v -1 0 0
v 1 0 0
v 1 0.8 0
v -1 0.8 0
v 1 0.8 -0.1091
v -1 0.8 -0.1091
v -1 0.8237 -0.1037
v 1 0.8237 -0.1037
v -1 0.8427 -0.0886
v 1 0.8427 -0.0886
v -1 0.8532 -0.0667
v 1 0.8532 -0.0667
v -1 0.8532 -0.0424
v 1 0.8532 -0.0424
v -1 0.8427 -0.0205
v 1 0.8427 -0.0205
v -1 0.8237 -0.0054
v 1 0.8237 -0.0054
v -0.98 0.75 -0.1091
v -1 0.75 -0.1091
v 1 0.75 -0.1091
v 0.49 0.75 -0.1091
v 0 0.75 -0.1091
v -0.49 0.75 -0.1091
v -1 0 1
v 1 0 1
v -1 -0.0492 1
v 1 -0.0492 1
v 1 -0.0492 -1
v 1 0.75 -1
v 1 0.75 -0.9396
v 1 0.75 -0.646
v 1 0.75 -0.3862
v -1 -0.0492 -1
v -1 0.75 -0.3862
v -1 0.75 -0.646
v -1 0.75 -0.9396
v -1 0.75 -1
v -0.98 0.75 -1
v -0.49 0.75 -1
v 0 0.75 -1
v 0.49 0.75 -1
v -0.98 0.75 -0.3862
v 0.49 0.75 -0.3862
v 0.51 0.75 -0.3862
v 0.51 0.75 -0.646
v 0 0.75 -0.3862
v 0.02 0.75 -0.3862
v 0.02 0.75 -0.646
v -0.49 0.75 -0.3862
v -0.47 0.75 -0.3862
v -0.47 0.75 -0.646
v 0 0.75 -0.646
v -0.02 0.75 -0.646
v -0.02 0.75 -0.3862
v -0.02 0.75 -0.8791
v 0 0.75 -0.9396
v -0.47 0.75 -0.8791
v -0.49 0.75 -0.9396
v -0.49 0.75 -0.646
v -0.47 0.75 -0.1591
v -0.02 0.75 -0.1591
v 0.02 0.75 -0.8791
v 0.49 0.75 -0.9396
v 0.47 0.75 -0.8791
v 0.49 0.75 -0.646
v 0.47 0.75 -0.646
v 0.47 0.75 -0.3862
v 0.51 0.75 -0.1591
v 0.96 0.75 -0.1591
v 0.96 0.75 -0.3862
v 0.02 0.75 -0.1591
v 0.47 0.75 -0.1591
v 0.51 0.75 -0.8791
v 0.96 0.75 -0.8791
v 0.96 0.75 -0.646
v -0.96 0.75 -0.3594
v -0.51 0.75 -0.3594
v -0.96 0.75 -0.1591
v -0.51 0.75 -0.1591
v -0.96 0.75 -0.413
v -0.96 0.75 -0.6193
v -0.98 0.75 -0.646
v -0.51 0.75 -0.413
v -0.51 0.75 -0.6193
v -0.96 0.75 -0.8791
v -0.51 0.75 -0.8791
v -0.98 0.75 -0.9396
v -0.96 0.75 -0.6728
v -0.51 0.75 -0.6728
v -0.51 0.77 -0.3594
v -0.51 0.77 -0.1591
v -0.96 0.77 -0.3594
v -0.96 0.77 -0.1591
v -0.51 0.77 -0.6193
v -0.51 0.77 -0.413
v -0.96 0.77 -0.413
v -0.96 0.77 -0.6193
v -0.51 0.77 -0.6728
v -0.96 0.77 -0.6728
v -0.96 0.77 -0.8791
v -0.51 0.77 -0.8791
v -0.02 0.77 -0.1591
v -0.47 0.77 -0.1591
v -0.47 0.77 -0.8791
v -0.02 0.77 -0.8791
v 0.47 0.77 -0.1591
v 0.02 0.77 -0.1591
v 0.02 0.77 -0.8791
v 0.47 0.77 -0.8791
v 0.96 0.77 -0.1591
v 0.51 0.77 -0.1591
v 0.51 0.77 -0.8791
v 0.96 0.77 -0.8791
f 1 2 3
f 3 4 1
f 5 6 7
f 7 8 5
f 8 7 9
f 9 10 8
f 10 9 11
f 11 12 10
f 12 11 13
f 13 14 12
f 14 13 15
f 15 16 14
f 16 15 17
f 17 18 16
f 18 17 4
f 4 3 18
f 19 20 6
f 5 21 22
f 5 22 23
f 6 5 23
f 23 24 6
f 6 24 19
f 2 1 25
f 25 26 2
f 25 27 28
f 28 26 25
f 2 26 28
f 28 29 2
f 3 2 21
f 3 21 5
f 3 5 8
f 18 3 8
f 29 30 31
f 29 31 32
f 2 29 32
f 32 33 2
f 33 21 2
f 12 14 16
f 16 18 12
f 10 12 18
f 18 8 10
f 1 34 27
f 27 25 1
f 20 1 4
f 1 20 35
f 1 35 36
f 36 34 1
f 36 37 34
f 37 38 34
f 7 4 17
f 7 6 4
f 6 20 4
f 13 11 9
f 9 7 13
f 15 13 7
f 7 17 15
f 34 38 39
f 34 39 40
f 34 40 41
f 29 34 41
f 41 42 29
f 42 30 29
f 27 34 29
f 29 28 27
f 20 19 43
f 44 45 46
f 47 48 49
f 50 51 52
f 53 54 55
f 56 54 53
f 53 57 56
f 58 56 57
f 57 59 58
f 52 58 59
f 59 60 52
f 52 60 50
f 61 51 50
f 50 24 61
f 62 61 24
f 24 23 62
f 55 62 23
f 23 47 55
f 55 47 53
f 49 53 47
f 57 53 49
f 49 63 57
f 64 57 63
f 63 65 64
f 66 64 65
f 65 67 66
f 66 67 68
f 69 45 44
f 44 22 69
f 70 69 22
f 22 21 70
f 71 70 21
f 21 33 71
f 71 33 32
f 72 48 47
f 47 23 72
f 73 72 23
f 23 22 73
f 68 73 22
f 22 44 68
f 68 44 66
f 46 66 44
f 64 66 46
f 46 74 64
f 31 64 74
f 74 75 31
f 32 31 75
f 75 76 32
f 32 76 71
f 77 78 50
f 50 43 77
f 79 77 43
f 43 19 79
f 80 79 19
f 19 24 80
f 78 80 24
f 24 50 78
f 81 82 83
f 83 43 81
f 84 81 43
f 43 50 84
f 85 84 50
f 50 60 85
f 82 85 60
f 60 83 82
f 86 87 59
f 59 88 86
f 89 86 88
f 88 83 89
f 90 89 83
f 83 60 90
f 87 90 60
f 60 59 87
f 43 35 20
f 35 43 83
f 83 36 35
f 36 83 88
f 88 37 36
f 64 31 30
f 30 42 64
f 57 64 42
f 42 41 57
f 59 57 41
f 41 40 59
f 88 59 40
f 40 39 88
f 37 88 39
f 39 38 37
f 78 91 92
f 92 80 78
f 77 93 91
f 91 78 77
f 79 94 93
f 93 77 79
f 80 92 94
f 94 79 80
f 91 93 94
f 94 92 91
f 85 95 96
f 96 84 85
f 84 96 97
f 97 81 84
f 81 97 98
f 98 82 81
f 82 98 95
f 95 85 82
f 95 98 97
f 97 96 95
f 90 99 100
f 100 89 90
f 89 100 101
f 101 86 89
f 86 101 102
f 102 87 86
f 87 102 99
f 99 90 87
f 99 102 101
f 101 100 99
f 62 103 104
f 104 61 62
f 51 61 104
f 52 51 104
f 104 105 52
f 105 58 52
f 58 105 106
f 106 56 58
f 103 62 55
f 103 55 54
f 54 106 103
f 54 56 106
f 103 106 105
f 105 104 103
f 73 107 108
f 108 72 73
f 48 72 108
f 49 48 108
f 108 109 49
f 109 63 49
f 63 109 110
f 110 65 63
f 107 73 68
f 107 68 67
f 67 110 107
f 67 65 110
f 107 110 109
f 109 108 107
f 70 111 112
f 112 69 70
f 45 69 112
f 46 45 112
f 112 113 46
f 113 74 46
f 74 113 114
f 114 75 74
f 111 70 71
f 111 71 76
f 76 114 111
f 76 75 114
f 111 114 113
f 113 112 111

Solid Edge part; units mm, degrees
sketch "Sketch1" plane through (0, 0, 0) normal (1, 0, 0) x (0, 1, 0)
  line L0 (0, 0) -> (0.8, 0)
  arc A0 (0.8, 0) -> (0.8, -0.1091) centre (0.8, -0.0546) cw
  line L1 (0.8, -0.1091) -> (0.75, -0.1091)
  line L2 (0.75, -0.1091) -> (0.75, -1)
  line L3 (0.75, -1) -> (0, -1)
  line L4 (0, -1) -> (0, 0)
extrude "Protrusion1" add sketch "Sketch1" along normal mid plane 2
sketch "Sketch2" plane through (0, 0.75, -0.5546) normal (0, 1, 0) x (-1, 0, 0)
  line L0 (0.51, 0.1952) -> (0.96, 0.1952)
  line L1 (0.96, 0.1952) -> (0.96, 0.3954)
  line L2 (0.51, 0.3954) -> (0.96, 0.3954)
  line L3 (0.51, 0.3954) -> (0.51, 0.1952)
  line L4 (0.51, 0.1416) -> (0.96, 0.1416)
  line L5 (0.96, 0.1416) -> (0.96, -0.0647)
  line L6 (0.51, -0.0647) -> (0.96, -0.0647)
  line L7 (0.51, 0.1416) -> (0.51, -0.0647)
  line L8 (0.96, -0.1183) -> (0.96, -0.3246)
  line L9 (0.96, -0.3246) -> (0.51, -0.3246)
  line L10 (0.51, -0.1183) -> (0.51, -0.3246)
  line L11 (0.51, -0.1183) -> (0.96, -0.1183)
  line L12 (0.47, 0.3954) -> (0.47, -0.3246)
  line L13 (0.47, -0.3246) -> (0.02, -0.3246)
  line L14 (0.02, -0.3246) -> (0.02, 0.3954)
  line L15 (0.02, 0.3954) -> (0.47, 0.3954)
  line L16 (-0.02, 0.3954) -> (-0.02, -0.3246)
  line L17 (-0.02, -0.3246) -> (-0.47, -0.3246)
  line L18 (-0.47, -0.3246) -> (-0.47, 0.3954)
  line L19 (-0.47, 0.3954) -> (-0.02, 0.3954)
  line L20 (-0.51, 0.3954) -> (-0.51, -0.3246)
  line L21 (-0.51, -0.3246) -> (-0.96, -0.3246)
  line L22 (-0.96, -0.3246) -> (-0.96, 0.3954)
  line L23 (-0.96, 0.3954) -> (-0.51, 0.3954)
  dimension "D1" = 0.45
  dimension "D2" = 0.72
  dimension "D3" = 0.05
extrude "ExtrudedProtrusion_2" add sketch "Sketch2" along normal blind 0.02
sketch "Sketch3" plane through (0, 0, 0) normal (0, 1, 0) x (-1, 0, 0)
  line L0 (-1, 1) -> (-1, -1)
  line L1 (-1, -1) -> (1, -1)
  line L2 (1, -1) -> (1, 1)
  line L3 (1, 1) -> (-1, 1)
extrude "ExtrudedProtrusion_3" add sketch "Sketch3" against normal blind 0.0492
